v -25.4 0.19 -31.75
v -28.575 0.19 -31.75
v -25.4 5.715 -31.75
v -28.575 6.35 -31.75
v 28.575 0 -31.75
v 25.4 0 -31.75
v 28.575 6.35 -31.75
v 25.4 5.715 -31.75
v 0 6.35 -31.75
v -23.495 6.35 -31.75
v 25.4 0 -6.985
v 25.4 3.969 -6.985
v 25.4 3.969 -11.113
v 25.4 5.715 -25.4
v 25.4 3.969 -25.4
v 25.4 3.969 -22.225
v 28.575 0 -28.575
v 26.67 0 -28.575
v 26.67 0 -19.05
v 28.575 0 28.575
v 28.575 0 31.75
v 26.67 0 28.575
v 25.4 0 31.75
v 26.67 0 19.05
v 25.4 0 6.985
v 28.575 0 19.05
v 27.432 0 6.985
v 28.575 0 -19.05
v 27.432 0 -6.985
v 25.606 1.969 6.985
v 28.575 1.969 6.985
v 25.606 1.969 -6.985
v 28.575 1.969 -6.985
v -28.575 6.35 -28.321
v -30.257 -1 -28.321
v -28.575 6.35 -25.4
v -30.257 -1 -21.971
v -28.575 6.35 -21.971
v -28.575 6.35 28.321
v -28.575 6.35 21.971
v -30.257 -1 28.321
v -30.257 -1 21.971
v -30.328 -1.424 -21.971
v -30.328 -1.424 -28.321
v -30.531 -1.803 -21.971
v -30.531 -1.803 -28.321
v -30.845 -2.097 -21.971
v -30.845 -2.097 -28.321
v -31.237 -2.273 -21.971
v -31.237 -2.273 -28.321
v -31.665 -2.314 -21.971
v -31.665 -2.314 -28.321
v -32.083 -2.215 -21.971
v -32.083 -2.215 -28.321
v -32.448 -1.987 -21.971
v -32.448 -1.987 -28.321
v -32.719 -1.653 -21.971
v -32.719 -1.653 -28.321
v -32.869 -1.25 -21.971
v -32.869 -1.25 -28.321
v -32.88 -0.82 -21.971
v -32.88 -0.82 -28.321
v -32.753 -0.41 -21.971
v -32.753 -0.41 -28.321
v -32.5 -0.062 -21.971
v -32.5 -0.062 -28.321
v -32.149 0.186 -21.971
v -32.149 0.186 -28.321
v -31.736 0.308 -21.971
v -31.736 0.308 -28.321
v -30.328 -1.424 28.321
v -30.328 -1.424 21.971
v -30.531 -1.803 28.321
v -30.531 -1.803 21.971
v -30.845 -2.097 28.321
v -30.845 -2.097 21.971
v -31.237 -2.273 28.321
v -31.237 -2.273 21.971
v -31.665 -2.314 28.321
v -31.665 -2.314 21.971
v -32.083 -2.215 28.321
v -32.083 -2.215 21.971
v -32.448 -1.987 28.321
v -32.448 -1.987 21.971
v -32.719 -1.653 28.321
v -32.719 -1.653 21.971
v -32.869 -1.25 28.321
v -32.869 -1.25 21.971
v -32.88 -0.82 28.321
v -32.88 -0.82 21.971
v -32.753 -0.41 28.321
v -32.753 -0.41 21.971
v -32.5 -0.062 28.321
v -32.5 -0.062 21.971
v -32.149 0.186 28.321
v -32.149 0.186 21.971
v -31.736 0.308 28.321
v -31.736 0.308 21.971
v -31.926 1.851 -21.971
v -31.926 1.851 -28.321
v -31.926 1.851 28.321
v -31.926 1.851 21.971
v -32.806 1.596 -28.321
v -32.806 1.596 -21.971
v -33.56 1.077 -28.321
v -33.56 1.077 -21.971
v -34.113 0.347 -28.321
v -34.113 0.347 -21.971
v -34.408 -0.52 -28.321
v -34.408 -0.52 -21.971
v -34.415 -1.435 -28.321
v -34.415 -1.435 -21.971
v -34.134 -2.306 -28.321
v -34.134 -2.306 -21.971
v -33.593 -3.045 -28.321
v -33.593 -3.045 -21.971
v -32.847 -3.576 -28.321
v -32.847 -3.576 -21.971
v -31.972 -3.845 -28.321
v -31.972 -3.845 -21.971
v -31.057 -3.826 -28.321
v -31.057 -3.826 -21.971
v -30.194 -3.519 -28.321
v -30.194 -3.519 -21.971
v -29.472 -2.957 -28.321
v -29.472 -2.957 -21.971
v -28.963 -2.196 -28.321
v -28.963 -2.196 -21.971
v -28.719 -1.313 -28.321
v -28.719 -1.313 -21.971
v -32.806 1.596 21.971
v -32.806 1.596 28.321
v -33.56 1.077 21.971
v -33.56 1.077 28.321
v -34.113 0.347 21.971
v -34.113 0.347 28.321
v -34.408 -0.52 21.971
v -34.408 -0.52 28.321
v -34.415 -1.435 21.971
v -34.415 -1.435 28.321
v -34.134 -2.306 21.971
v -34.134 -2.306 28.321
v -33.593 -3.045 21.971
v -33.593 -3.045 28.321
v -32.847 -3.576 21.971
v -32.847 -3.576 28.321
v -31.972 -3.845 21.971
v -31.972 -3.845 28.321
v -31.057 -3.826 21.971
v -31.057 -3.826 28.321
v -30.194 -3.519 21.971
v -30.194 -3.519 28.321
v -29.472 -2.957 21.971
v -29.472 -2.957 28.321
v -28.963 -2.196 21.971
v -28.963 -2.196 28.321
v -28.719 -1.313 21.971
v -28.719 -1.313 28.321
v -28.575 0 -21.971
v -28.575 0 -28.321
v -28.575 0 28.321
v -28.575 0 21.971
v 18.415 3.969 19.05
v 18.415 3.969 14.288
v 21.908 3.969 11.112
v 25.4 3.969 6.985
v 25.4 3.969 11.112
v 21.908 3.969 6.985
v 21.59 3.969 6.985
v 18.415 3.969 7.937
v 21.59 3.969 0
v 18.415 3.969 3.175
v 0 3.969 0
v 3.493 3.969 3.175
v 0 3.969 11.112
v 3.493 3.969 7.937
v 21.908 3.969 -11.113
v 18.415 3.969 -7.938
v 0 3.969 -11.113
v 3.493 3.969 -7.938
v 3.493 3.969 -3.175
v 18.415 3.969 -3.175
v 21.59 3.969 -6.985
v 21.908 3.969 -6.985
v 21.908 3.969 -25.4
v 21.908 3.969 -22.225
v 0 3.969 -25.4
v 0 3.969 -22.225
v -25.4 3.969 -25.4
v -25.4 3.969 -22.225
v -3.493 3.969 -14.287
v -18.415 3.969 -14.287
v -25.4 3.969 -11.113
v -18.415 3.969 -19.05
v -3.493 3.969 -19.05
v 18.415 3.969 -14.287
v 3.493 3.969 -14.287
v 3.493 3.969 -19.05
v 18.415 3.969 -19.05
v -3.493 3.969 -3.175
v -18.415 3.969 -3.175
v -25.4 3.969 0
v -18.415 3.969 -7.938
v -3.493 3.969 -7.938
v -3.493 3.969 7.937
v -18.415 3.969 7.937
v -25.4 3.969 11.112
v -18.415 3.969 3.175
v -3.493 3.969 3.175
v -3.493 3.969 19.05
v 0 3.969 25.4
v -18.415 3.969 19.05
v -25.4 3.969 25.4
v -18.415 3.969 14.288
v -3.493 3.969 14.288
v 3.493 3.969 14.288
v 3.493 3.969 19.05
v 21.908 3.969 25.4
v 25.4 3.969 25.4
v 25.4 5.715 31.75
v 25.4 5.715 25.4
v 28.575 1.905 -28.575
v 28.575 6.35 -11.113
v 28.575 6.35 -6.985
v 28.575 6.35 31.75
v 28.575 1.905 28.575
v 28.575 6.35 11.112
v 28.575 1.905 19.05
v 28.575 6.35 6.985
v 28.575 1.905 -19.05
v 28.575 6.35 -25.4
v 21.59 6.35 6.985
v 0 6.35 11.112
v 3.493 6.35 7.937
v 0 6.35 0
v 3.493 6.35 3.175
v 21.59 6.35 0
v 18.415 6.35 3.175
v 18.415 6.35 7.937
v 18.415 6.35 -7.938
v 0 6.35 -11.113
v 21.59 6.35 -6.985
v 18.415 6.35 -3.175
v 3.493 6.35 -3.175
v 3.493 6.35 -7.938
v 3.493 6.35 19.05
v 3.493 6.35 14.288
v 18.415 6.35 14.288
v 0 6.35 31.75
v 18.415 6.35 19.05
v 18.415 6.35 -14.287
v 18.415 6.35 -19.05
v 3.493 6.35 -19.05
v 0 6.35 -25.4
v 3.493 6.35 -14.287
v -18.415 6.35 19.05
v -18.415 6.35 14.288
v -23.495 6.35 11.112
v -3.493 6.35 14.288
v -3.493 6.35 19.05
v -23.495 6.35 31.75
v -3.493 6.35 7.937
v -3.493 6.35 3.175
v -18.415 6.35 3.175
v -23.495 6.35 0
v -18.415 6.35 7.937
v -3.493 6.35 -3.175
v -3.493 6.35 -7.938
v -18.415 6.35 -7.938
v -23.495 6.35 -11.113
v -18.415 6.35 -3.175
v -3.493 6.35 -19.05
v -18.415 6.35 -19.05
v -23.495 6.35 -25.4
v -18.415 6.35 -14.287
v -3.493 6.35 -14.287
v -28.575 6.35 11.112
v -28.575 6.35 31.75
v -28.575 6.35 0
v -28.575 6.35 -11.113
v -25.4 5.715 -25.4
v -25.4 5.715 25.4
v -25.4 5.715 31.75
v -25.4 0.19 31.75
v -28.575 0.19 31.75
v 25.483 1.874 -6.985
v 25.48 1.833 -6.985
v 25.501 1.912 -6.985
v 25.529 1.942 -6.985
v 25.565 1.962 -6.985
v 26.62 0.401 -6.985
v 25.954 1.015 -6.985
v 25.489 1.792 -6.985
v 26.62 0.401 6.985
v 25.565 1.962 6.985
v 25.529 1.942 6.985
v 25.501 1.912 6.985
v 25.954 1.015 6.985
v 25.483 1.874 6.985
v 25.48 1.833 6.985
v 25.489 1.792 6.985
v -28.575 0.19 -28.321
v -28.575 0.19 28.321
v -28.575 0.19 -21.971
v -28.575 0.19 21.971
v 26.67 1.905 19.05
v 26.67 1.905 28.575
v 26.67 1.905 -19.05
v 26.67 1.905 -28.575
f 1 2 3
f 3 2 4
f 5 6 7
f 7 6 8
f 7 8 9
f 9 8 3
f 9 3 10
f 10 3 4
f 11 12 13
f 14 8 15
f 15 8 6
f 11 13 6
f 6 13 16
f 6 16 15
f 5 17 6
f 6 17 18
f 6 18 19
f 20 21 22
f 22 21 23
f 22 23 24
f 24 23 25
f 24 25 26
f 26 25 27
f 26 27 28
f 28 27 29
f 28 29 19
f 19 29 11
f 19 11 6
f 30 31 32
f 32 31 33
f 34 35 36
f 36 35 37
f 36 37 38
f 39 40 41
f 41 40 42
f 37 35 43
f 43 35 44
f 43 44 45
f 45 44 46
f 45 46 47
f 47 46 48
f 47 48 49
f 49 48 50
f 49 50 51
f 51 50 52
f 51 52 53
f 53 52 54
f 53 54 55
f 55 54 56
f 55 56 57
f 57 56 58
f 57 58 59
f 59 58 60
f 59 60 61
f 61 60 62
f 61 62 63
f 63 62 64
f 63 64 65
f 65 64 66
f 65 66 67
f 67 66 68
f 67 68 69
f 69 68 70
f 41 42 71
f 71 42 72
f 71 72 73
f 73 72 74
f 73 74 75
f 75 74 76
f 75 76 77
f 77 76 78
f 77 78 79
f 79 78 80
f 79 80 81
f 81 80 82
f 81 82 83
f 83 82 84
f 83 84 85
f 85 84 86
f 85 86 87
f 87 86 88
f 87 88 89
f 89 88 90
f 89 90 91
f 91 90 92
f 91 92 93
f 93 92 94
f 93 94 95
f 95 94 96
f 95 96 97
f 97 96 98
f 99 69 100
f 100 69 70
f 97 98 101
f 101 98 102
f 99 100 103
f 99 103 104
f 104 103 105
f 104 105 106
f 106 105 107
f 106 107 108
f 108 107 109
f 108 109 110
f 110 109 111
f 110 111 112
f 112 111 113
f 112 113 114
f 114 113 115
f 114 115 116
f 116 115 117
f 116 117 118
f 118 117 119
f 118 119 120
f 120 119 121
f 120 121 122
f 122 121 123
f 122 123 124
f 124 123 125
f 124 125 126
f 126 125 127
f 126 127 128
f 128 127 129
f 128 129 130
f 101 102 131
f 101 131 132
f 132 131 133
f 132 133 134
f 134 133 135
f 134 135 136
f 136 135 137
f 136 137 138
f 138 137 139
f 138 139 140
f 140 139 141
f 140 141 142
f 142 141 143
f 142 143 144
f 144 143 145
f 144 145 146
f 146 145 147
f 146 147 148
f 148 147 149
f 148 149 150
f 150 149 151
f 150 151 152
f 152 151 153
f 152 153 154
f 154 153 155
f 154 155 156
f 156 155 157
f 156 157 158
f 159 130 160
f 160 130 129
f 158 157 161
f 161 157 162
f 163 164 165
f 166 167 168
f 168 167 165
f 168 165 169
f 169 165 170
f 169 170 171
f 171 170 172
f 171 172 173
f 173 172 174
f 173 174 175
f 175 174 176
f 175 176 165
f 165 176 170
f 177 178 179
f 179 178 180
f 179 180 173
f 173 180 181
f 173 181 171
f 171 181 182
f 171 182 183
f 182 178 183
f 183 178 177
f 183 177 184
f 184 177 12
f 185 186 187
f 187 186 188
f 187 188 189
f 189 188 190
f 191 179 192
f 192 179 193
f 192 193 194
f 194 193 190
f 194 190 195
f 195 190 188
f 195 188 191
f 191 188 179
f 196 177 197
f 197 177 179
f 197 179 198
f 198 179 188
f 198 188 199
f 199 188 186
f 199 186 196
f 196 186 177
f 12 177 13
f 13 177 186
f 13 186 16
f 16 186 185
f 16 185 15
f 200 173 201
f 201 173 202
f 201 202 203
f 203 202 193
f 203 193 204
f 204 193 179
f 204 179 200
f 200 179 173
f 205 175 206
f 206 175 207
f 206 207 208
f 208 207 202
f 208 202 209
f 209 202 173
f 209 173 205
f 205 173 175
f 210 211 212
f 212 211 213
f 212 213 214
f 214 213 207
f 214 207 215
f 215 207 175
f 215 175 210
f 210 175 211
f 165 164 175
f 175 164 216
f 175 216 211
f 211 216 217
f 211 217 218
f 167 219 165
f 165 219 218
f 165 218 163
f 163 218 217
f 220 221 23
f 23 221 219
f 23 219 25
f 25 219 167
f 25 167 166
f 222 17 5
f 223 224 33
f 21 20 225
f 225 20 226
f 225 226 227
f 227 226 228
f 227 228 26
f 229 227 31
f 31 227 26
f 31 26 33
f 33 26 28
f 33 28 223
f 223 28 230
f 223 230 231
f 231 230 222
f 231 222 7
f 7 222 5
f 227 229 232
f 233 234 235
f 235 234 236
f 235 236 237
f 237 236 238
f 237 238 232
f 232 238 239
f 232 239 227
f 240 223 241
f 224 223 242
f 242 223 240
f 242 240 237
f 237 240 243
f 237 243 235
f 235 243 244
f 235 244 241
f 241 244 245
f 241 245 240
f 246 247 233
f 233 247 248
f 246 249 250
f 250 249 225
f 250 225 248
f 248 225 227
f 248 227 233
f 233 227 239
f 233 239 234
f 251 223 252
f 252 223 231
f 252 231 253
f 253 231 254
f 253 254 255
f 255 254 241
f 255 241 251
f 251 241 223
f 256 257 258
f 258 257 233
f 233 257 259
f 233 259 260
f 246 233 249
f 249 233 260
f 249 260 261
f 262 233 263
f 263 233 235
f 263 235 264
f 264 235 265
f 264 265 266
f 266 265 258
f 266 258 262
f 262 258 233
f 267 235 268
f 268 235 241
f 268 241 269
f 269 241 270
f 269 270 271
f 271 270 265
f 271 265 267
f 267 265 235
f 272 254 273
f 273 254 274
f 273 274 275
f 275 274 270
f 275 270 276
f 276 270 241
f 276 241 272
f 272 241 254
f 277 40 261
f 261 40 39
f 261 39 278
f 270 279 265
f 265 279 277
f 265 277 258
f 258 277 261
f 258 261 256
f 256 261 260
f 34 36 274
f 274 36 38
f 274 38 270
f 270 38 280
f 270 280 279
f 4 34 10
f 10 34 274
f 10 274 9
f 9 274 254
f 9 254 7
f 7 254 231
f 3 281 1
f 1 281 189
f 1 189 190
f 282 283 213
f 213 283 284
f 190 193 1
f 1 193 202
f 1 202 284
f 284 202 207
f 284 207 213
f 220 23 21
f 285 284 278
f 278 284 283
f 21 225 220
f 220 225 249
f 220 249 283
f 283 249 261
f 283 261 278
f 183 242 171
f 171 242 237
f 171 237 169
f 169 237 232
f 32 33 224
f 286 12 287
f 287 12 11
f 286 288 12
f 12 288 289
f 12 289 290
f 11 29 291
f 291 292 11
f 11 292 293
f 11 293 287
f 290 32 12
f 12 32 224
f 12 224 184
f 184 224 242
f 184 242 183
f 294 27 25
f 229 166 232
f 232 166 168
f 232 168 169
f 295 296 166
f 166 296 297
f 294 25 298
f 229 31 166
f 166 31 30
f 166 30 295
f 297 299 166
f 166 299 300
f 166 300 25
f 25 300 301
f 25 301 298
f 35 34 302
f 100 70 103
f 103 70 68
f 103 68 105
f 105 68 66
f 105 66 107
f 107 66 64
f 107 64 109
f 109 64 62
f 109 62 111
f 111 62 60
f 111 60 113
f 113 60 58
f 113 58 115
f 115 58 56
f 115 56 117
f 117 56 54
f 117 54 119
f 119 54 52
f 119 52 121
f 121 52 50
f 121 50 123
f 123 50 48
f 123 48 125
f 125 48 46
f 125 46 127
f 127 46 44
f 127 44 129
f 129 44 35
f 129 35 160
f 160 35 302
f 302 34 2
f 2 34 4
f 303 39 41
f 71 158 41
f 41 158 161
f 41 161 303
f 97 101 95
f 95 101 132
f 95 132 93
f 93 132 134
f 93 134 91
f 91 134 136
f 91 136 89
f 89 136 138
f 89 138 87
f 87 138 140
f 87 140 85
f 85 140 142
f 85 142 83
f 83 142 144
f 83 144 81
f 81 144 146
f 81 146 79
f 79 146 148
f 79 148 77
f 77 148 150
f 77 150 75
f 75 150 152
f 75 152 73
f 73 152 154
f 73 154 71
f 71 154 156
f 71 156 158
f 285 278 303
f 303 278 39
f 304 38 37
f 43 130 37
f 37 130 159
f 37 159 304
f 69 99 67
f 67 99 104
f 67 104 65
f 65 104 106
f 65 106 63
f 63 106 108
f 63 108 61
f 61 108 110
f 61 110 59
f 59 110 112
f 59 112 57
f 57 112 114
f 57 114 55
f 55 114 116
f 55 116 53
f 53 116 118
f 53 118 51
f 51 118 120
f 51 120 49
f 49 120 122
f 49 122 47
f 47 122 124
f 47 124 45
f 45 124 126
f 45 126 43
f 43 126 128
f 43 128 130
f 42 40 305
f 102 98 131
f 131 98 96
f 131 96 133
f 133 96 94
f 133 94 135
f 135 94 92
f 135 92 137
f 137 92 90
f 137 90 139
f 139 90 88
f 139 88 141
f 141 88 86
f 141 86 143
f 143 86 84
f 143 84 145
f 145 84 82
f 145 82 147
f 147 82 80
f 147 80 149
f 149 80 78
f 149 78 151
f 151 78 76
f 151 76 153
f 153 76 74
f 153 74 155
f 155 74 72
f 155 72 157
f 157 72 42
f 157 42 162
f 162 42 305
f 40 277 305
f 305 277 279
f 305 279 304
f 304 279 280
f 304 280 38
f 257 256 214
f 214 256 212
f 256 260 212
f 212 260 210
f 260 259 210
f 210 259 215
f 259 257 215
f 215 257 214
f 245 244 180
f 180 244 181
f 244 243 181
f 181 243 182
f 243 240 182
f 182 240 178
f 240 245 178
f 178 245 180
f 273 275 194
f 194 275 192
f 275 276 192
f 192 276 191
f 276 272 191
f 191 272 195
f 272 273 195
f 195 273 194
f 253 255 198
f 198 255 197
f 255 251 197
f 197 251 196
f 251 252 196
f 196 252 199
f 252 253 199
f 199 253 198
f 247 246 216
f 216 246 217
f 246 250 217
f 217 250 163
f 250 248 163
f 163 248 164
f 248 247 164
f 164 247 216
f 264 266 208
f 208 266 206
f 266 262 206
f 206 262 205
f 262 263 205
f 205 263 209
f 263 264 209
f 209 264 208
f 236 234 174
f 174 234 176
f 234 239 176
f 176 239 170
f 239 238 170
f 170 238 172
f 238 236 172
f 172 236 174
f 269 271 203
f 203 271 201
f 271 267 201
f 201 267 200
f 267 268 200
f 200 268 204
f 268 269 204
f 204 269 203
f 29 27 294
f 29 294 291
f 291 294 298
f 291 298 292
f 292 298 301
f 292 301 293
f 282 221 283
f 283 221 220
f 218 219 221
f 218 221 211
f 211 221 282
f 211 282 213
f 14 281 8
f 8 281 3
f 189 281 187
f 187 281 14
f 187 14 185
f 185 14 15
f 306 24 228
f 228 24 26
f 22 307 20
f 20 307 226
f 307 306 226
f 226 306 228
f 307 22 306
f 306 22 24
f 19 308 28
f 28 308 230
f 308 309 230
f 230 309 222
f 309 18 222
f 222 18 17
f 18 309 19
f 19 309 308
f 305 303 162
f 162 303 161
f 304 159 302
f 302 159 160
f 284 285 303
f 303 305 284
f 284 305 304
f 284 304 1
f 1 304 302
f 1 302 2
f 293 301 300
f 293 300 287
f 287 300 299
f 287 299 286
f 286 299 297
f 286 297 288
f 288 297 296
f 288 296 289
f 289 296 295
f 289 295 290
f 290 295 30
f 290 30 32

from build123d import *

# Parameters (mm, degrees)
BOSS_EXTRUDE1_DEPTH = 31.75
CUT_EXTRUDE1_DEPTH  = 6.985
SKETCH2_W           = 3.429
SKETCH2_H           = 10.222992
SKETCH2_W_2         = 43.942
CUT_EXTRUDE2_DEPTH  = 19.05
SKETCH4_W           = 14.9225
SKETCH4_H           = 4.7625
CUT_EXTRUDE4_DEPTH  = 48.499676787
CUT_EXTRUDE7_DEPTH  = 6.985
SKETCH9_W           = 50.8
SKETCH9_H           = 1.74625
CUT_EXTRUDE8_DEPTH  = 6.35
SKETCH10_W          = 9.525
SKETCH10_H          = 1.905
CUT_EXTRUDE9_DEPTH  = 1.905
SKETCH11_W          = 3.175
SKETCH11_H          = 0.1905
CUT_EXTRUDE10_DEPTH = 73.520592781
FILLET2_R           = 0.127


with BuildPart() as part:
    # Sketch1 → Boss-Extrude1 (new, symmetric)
    with BuildSketch(Plane.XY):
        with BuildLine():
            Line((-28.575, 6.35), (-30.257496, -0.999998))
            ThreePointArc((-30.257496, -0.999998), (-32.447762596, -1.986950865), (-31.736171426, 0.307603934))
            Line((-31.736171426, 0.307603934), (-31.926464573, 1.851416204))
            ThreePointArc((-31.926464573, 1.851416204), (-33.592921231, -3.045007588), (-28.719147778, -1.313425633))
            Line((-28.719147778, -1.313425633), (-28.575, 0))
            Line((-28.575, 0), (-25.4, 0))
            Line((-25.4, 0), (-25.4, 3.96875))
            Line((-25.4, 3.96875), (25.4, 3.96875))
            Line((25.4, 3.96875), (25.4, 0))
            Line((25.4, 0), (28.575, 0))
            Line((28.575, 0), (28.575, 6.35))
            Line((28.575, 6.35), (-28.575, 6.35))
        make_face()
    extrude(amount=BOSS_EXTRUDE1_DEPTH, both=True)

    # Sketch1<4> → Cut-Extrude1 (cut, symmetric)
    with BuildSketch(Plane.XY):
        Polygon((28.575, 6.35), (21.59, 6.35), (21.59, 3.96875), (25.4, 3.96875), (25.4, 1.9685), (28.575, 1.9685), align=None)
    extrude(amount=CUT_EXTRUDE1_DEPTH, both=True, mode=Mode.SUBTRACT)

    # Sketch2 → Cut-Extrude2 (cut)
    with BuildSketch(Plane(origin=(-28.575, 9.604995709, 0), x_dir=(0, 0, 1), z_dir=(-1, 0, 0))):
        with Locations((30.0355, -8.366491709)):
            Rectangle(SKETCH2_W, SKETCH2_H)
        with Locations((-30.0355, -8.366491709)):
            Rectangle(SKETCH2_W, SKETCH2_H)
        with Locations((0, -8.366491709)):
            Rectangle(SKETCH2_W_2, SKETCH2_H)
    extrude(amount=CUT_EXTRUDE2_DEPTH, mode=Mode.SUBTRACT)

    # Sketch4 → Cut-Extrude4 (cut, through all)
    with BuildSketch(Plane.XZ.offset(-3.96875)):
        with Locations((-10.95375, 16.66875)):
            Rectangle(SKETCH4_W, SKETCH4_H)
        with Locations((10.95375, 16.66875)):
            Rectangle(SKETCH4_W, SKETCH4_H)
        with Locations((-10.95375, 5.55625)):
            Rectangle(SKETCH4_W, SKETCH4_H)
        with Locations((10.95375, 5.55625)):
            Rectangle(SKETCH4_W, SKETCH4_H)
        with Locations((-10.95375, -5.55625)):
            Rectangle(SKETCH4_W, SKETCH4_H)
        with Locations((10.95375, -5.55625)):
            Rectangle(SKETCH4_W, SKETCH4_H)
        with Locations((-10.95375, -16.66875)):
            Rectangle(SKETCH4_W, SKETCH4_H)
        with Locations((10.95375, -16.66875)):
            Rectangle(SKETCH4_W, SKETCH4_H)
    extrude(amount=-CUT_EXTRUDE4_DEPTH, mode=Mode.SUBTRACT)

    # Sketch8 → Cut-Extrude7 (cut, symmetric)
    with BuildSketch(Plane.XY):
        with BuildLine():
            Line((25.4, 0), (27.432, 0))
            ThreePointArc((27.432, 0), (26.172949082, 0.772949082), (25.4, 2.032))
            Line((25.4, 2.032), (25.4, 0))
        make_face()
    extrude(amount=CUT_EXTRUDE7_DEPTH, both=True, mode=Mode.SUBTRACT)

    # Sketch9 → Cut-Extrude8 (cut)
    with BuildSketch(Plane.XY.offset(31.75)):
        with Locations((0, 4.841875)):
            Rectangle(SKETCH9_W, SKETCH9_H)
    cut_extrude8 = extrude(amount=-CUT_EXTRUDE8_DEPTH, mode=Mode.SUBTRACT)

    # Mirror1: Cut-Extrude8 across plane
    add(cut_extrude8.mirror(Plane.XY), mode=Mode.SUBTRACT)

    # Sketch10 → Cut-Extrude9 (cut)
    with BuildSketch(Plane(origin=(28.575, 0, 0), x_dir=(0, 0, -1), z_dir=(1, 0, 0))):
        with Locations((23.8125, 0.9525)):
            Rectangle(SKETCH10_W, SKETCH10_H)
        with Locations((-23.8125, 0.9525)):
            Rectangle(SKETCH10_W, SKETCH10_H)
    extrude(amount=-CUT_EXTRUDE9_DEPTH, mode=Mode.SUBTRACT)

    # Sketch11 → Cut-Extrude10 (cut, through all)
    with BuildSketch(Plane.XY.offset(31.75)):
        with Locations((-26.9875, 0.09525)):
            Rectangle(SKETCH11_W, SKETCH11_H)
    extrude(amount=-CUT_EXTRUDE10_DEPTH, mode=Mode.SUBTRACT)

    # Fillet2
    fillet2_edges = [part.edges().sort_by_distance(p)[0] for p in [
        (25.421490589, 1.9685, 0),
    ]]
    fillet(fillet2_edges, radius=FILLET2_R)


solid = part.part
